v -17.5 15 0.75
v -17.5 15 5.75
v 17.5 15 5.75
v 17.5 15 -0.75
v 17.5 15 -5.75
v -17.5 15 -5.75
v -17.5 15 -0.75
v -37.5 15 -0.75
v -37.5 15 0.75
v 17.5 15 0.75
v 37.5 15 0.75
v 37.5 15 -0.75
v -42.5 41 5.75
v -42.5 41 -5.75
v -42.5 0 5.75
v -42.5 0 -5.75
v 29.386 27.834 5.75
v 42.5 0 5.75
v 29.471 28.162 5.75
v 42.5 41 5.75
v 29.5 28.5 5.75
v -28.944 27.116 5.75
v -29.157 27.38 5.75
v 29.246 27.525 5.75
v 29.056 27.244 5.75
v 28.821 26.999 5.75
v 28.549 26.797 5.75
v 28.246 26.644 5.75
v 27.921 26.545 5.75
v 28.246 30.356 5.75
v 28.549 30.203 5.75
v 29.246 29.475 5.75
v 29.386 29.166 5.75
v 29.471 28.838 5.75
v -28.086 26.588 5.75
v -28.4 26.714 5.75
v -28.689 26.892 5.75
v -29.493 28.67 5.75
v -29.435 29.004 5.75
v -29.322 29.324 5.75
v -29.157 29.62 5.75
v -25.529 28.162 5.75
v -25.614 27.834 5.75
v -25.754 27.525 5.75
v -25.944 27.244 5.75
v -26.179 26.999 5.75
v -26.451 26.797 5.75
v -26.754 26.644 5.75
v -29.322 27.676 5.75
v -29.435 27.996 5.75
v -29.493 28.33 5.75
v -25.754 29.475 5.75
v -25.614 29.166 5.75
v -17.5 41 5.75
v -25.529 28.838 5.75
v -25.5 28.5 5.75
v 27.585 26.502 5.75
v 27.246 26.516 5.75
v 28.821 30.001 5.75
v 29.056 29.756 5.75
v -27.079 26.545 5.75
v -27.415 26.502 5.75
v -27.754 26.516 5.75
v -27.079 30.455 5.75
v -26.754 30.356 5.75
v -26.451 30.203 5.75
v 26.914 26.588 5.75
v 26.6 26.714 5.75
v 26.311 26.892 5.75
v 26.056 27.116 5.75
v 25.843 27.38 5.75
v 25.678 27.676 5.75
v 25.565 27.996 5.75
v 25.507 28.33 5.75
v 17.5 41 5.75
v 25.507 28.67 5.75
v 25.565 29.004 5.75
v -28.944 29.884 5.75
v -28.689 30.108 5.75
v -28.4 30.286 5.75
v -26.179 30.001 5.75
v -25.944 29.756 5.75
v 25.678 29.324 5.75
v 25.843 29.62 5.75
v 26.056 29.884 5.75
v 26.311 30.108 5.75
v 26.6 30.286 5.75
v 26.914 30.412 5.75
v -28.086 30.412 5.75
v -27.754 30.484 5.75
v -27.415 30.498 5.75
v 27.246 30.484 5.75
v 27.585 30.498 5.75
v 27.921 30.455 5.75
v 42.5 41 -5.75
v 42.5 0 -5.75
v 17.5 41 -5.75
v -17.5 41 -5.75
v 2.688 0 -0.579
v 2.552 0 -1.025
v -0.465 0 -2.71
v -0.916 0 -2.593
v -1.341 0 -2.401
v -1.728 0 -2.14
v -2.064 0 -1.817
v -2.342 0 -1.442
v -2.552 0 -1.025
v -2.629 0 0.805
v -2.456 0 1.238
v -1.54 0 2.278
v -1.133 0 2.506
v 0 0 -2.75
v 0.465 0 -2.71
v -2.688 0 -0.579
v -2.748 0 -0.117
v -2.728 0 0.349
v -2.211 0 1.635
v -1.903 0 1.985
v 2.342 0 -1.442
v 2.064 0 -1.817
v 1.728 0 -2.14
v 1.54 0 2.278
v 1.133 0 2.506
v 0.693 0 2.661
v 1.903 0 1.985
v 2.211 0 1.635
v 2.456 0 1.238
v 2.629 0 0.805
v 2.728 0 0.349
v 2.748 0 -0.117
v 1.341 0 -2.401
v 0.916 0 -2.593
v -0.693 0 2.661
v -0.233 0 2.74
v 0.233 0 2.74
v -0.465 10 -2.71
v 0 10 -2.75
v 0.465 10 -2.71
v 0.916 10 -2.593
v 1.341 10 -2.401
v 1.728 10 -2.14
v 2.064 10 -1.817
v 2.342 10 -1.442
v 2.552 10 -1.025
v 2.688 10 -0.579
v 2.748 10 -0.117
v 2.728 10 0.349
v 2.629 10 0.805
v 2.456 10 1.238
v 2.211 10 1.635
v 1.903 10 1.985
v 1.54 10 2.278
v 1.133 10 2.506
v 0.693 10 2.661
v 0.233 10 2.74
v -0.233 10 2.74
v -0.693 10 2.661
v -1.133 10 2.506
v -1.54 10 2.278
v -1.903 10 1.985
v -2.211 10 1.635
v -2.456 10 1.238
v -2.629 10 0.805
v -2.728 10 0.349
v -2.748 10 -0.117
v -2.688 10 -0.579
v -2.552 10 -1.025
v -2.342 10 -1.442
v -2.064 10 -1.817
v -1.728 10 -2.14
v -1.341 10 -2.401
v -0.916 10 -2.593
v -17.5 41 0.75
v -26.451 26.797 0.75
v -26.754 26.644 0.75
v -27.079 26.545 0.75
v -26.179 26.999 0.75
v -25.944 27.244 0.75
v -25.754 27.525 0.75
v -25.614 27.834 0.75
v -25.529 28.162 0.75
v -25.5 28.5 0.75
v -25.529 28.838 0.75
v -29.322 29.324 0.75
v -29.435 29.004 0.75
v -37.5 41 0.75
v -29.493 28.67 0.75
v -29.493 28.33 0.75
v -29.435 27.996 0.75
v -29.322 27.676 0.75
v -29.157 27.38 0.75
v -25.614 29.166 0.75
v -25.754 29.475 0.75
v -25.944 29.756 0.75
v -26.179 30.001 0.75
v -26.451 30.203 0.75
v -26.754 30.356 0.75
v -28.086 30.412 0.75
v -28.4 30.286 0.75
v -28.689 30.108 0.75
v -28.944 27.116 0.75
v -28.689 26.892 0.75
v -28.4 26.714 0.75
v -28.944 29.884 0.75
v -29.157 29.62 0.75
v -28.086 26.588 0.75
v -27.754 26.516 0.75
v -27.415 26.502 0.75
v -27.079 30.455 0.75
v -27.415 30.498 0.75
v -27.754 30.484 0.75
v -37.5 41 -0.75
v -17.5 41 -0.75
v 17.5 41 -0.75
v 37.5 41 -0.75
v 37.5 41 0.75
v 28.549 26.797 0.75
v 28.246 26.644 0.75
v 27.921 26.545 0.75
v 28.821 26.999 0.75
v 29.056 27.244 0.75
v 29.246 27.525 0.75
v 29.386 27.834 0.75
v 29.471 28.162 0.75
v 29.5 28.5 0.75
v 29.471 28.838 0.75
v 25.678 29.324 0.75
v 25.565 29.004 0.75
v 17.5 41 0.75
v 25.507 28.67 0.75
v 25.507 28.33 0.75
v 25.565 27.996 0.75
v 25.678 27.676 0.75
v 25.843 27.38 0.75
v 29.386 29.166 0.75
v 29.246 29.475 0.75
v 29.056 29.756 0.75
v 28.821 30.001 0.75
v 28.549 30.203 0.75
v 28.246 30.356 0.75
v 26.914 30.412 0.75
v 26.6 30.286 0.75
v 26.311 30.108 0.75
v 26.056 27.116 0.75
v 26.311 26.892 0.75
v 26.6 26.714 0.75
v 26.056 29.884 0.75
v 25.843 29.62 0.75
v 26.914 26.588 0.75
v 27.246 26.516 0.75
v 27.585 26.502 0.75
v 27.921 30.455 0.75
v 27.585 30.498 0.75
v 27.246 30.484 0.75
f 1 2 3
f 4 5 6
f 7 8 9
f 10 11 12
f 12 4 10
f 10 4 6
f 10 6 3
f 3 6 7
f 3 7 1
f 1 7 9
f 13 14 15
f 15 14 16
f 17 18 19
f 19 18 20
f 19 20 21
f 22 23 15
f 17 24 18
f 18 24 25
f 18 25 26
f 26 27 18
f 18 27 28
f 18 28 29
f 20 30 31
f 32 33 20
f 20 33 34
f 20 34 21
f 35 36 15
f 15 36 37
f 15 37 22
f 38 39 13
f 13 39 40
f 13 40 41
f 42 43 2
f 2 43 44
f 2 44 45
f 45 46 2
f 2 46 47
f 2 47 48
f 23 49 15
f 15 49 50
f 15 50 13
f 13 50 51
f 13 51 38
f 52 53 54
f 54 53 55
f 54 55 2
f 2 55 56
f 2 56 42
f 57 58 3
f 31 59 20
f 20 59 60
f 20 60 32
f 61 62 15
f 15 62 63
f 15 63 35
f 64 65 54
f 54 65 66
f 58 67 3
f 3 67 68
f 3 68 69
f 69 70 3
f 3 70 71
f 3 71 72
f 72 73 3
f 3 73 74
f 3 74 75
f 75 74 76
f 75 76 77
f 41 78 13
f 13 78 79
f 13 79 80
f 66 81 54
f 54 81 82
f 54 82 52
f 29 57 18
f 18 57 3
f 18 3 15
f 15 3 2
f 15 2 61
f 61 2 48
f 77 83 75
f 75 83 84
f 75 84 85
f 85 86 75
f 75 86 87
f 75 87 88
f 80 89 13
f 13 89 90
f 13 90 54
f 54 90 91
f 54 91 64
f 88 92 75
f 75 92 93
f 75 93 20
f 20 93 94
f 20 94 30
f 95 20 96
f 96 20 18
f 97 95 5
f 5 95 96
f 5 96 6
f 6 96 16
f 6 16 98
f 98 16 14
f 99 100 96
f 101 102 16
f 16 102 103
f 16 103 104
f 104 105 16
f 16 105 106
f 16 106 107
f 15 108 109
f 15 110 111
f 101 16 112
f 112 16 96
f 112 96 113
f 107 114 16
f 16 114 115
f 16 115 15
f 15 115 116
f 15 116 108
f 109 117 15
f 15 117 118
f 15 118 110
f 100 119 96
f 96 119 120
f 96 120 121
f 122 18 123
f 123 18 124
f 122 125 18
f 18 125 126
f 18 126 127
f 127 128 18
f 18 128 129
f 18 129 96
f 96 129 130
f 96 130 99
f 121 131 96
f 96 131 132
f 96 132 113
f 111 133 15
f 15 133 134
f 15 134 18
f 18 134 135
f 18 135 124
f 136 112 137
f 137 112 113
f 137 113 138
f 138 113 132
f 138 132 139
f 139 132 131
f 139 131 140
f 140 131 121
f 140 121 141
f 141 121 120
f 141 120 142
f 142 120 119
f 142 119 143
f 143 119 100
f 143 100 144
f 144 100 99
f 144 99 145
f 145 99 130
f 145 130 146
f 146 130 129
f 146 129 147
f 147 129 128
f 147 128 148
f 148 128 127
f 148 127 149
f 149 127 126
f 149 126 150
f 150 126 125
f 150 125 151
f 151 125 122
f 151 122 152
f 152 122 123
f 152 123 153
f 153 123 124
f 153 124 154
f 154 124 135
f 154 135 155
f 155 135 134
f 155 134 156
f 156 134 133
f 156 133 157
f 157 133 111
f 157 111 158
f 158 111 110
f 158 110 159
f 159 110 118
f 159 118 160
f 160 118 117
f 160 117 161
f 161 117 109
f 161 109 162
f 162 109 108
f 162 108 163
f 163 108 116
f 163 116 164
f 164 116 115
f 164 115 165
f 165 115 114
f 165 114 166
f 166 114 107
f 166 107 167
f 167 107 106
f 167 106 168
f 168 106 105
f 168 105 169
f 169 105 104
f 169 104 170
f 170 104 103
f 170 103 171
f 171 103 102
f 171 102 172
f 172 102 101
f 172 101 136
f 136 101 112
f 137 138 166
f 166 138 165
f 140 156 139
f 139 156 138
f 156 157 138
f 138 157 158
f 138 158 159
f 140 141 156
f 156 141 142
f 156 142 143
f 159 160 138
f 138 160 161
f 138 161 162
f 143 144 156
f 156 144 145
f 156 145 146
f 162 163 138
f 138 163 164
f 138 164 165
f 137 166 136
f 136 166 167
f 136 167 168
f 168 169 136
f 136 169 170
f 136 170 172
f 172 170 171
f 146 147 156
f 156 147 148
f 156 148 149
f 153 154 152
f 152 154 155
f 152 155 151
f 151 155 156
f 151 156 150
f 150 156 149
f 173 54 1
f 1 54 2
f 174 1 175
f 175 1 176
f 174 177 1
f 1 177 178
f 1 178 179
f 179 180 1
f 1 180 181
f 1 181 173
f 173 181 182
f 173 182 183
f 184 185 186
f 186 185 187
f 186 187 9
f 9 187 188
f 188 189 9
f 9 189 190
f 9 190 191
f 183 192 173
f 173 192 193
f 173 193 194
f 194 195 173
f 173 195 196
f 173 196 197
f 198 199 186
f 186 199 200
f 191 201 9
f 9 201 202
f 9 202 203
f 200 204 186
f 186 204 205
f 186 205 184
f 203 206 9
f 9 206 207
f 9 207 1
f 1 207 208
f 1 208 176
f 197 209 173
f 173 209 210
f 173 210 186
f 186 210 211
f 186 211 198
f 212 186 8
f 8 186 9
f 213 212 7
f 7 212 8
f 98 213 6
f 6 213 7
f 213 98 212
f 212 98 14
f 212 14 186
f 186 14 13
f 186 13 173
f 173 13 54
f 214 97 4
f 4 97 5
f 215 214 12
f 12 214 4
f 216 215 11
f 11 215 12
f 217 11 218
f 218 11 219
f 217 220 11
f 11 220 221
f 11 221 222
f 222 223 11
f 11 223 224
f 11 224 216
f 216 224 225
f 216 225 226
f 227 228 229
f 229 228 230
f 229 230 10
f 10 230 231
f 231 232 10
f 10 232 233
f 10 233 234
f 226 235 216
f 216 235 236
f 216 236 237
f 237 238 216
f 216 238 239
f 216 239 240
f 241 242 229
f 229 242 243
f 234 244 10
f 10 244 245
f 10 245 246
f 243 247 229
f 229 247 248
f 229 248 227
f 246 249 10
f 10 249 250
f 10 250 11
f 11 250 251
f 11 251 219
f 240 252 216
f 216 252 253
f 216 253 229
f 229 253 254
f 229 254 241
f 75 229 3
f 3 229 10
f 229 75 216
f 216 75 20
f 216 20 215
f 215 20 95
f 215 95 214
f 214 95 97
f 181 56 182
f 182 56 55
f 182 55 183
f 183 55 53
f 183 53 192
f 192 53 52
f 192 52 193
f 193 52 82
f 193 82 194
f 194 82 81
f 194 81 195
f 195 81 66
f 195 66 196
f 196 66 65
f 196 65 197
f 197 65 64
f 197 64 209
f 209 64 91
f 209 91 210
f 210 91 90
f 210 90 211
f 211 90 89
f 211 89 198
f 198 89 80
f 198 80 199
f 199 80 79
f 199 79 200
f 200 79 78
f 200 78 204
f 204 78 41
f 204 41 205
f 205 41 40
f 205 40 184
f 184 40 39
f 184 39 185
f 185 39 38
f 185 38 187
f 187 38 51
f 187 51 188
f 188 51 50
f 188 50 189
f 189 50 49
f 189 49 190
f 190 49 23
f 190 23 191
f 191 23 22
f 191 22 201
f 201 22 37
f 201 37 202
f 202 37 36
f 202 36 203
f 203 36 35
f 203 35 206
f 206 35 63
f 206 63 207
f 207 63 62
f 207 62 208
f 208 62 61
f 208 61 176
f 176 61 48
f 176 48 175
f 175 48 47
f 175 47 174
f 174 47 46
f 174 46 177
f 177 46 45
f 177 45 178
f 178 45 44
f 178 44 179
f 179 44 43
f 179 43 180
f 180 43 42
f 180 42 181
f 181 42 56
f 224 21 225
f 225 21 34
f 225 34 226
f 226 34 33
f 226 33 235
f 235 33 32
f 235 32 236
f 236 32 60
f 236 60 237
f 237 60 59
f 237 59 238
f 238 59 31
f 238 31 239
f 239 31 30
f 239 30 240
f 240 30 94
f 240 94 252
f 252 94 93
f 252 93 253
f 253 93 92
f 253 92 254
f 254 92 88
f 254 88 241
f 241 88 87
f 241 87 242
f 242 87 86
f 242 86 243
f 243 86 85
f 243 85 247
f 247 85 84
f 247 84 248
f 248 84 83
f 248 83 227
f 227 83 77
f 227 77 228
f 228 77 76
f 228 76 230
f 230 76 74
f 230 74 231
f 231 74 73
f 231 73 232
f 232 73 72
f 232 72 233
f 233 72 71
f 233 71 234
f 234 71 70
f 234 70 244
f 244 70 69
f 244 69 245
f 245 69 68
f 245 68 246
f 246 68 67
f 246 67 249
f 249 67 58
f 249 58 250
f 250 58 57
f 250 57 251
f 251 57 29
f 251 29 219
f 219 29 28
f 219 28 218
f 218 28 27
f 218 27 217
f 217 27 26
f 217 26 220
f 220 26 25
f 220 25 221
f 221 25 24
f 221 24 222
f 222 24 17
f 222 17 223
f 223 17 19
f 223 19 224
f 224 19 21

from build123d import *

# Parameters (mm, degrees)
SKETCH2_W           = 85
SKETCH2_H           = 11.5
BOSS_EXTRUDE1_DEPTH = 15
SKETCH3_R           = 2.75
CUT_EXTRUDE1_DEPTH  = 10
BOSS_EXTRUDE2_DEPTH = 26
SKETCH5_R           = 2
CUT_EXTRUDE2_DEPTH  = 5


with BuildPart() as part:
    # Sketch2 → Boss-Extrude1 (new body)
    with BuildSketch(Plane(origin=(0, 0, 0), x_dir=(1, 0, 0), z_dir=(0, 1, 0))):
        Rectangle(SKETCH2_W, SKETCH2_H)
    extrude(amount=BOSS_EXTRUDE1_DEPTH)

    # Sketch3 → Cut-Extrude1 (cut)
    with BuildSketch(Plane.XZ):
        with Locations(Location((0, 0, 0), (0, 0, 270))):
            Circle(SKETCH3_R)
    extrude(amount=-CUT_EXTRUDE1_DEPTH, mode=Mode.SUBTRACT)

    # Sketch4 → Boss-Extrude2 (add)
    with BuildSketch(Plane(origin=(0, 15, 0), x_dir=(1, 0, 0), z_dir=(0, 1, 0))):
        Polygon((-42.5, 5.75), (-17.5, 5.75), (-17.5, 0.75), (-37.5, 0.75), (-37.5, -0.75), (-17.5, -0.75), (-17.5, -5.75), (-42.5, -5.75), align=None)
        Polygon((42.5, 5.75), (42.5, -5.75), (17.5, -5.75), (17.5, -0.75), (37.5, -0.75), (37.5, 0.75), (17.5, 0.75), (17.5, 5.75), align=None)
    extrude(amount=BOSS_EXTRUDE2_DEPTH)

    # Sketch5 → Cut-Extrude2 (cut)
    with BuildSketch(Plane.XY.offset(5.75)):
        with Locations((-27.5, 28.5)):
            Circle(SKETCH5_R)
        with Locations((27.5, 28.5)):
            Circle(SKETCH5_R)
    extrude(amount=-CUT_EXTRUDE2_DEPTH, mode=Mode.SUBTRACT)


solid = part.part
